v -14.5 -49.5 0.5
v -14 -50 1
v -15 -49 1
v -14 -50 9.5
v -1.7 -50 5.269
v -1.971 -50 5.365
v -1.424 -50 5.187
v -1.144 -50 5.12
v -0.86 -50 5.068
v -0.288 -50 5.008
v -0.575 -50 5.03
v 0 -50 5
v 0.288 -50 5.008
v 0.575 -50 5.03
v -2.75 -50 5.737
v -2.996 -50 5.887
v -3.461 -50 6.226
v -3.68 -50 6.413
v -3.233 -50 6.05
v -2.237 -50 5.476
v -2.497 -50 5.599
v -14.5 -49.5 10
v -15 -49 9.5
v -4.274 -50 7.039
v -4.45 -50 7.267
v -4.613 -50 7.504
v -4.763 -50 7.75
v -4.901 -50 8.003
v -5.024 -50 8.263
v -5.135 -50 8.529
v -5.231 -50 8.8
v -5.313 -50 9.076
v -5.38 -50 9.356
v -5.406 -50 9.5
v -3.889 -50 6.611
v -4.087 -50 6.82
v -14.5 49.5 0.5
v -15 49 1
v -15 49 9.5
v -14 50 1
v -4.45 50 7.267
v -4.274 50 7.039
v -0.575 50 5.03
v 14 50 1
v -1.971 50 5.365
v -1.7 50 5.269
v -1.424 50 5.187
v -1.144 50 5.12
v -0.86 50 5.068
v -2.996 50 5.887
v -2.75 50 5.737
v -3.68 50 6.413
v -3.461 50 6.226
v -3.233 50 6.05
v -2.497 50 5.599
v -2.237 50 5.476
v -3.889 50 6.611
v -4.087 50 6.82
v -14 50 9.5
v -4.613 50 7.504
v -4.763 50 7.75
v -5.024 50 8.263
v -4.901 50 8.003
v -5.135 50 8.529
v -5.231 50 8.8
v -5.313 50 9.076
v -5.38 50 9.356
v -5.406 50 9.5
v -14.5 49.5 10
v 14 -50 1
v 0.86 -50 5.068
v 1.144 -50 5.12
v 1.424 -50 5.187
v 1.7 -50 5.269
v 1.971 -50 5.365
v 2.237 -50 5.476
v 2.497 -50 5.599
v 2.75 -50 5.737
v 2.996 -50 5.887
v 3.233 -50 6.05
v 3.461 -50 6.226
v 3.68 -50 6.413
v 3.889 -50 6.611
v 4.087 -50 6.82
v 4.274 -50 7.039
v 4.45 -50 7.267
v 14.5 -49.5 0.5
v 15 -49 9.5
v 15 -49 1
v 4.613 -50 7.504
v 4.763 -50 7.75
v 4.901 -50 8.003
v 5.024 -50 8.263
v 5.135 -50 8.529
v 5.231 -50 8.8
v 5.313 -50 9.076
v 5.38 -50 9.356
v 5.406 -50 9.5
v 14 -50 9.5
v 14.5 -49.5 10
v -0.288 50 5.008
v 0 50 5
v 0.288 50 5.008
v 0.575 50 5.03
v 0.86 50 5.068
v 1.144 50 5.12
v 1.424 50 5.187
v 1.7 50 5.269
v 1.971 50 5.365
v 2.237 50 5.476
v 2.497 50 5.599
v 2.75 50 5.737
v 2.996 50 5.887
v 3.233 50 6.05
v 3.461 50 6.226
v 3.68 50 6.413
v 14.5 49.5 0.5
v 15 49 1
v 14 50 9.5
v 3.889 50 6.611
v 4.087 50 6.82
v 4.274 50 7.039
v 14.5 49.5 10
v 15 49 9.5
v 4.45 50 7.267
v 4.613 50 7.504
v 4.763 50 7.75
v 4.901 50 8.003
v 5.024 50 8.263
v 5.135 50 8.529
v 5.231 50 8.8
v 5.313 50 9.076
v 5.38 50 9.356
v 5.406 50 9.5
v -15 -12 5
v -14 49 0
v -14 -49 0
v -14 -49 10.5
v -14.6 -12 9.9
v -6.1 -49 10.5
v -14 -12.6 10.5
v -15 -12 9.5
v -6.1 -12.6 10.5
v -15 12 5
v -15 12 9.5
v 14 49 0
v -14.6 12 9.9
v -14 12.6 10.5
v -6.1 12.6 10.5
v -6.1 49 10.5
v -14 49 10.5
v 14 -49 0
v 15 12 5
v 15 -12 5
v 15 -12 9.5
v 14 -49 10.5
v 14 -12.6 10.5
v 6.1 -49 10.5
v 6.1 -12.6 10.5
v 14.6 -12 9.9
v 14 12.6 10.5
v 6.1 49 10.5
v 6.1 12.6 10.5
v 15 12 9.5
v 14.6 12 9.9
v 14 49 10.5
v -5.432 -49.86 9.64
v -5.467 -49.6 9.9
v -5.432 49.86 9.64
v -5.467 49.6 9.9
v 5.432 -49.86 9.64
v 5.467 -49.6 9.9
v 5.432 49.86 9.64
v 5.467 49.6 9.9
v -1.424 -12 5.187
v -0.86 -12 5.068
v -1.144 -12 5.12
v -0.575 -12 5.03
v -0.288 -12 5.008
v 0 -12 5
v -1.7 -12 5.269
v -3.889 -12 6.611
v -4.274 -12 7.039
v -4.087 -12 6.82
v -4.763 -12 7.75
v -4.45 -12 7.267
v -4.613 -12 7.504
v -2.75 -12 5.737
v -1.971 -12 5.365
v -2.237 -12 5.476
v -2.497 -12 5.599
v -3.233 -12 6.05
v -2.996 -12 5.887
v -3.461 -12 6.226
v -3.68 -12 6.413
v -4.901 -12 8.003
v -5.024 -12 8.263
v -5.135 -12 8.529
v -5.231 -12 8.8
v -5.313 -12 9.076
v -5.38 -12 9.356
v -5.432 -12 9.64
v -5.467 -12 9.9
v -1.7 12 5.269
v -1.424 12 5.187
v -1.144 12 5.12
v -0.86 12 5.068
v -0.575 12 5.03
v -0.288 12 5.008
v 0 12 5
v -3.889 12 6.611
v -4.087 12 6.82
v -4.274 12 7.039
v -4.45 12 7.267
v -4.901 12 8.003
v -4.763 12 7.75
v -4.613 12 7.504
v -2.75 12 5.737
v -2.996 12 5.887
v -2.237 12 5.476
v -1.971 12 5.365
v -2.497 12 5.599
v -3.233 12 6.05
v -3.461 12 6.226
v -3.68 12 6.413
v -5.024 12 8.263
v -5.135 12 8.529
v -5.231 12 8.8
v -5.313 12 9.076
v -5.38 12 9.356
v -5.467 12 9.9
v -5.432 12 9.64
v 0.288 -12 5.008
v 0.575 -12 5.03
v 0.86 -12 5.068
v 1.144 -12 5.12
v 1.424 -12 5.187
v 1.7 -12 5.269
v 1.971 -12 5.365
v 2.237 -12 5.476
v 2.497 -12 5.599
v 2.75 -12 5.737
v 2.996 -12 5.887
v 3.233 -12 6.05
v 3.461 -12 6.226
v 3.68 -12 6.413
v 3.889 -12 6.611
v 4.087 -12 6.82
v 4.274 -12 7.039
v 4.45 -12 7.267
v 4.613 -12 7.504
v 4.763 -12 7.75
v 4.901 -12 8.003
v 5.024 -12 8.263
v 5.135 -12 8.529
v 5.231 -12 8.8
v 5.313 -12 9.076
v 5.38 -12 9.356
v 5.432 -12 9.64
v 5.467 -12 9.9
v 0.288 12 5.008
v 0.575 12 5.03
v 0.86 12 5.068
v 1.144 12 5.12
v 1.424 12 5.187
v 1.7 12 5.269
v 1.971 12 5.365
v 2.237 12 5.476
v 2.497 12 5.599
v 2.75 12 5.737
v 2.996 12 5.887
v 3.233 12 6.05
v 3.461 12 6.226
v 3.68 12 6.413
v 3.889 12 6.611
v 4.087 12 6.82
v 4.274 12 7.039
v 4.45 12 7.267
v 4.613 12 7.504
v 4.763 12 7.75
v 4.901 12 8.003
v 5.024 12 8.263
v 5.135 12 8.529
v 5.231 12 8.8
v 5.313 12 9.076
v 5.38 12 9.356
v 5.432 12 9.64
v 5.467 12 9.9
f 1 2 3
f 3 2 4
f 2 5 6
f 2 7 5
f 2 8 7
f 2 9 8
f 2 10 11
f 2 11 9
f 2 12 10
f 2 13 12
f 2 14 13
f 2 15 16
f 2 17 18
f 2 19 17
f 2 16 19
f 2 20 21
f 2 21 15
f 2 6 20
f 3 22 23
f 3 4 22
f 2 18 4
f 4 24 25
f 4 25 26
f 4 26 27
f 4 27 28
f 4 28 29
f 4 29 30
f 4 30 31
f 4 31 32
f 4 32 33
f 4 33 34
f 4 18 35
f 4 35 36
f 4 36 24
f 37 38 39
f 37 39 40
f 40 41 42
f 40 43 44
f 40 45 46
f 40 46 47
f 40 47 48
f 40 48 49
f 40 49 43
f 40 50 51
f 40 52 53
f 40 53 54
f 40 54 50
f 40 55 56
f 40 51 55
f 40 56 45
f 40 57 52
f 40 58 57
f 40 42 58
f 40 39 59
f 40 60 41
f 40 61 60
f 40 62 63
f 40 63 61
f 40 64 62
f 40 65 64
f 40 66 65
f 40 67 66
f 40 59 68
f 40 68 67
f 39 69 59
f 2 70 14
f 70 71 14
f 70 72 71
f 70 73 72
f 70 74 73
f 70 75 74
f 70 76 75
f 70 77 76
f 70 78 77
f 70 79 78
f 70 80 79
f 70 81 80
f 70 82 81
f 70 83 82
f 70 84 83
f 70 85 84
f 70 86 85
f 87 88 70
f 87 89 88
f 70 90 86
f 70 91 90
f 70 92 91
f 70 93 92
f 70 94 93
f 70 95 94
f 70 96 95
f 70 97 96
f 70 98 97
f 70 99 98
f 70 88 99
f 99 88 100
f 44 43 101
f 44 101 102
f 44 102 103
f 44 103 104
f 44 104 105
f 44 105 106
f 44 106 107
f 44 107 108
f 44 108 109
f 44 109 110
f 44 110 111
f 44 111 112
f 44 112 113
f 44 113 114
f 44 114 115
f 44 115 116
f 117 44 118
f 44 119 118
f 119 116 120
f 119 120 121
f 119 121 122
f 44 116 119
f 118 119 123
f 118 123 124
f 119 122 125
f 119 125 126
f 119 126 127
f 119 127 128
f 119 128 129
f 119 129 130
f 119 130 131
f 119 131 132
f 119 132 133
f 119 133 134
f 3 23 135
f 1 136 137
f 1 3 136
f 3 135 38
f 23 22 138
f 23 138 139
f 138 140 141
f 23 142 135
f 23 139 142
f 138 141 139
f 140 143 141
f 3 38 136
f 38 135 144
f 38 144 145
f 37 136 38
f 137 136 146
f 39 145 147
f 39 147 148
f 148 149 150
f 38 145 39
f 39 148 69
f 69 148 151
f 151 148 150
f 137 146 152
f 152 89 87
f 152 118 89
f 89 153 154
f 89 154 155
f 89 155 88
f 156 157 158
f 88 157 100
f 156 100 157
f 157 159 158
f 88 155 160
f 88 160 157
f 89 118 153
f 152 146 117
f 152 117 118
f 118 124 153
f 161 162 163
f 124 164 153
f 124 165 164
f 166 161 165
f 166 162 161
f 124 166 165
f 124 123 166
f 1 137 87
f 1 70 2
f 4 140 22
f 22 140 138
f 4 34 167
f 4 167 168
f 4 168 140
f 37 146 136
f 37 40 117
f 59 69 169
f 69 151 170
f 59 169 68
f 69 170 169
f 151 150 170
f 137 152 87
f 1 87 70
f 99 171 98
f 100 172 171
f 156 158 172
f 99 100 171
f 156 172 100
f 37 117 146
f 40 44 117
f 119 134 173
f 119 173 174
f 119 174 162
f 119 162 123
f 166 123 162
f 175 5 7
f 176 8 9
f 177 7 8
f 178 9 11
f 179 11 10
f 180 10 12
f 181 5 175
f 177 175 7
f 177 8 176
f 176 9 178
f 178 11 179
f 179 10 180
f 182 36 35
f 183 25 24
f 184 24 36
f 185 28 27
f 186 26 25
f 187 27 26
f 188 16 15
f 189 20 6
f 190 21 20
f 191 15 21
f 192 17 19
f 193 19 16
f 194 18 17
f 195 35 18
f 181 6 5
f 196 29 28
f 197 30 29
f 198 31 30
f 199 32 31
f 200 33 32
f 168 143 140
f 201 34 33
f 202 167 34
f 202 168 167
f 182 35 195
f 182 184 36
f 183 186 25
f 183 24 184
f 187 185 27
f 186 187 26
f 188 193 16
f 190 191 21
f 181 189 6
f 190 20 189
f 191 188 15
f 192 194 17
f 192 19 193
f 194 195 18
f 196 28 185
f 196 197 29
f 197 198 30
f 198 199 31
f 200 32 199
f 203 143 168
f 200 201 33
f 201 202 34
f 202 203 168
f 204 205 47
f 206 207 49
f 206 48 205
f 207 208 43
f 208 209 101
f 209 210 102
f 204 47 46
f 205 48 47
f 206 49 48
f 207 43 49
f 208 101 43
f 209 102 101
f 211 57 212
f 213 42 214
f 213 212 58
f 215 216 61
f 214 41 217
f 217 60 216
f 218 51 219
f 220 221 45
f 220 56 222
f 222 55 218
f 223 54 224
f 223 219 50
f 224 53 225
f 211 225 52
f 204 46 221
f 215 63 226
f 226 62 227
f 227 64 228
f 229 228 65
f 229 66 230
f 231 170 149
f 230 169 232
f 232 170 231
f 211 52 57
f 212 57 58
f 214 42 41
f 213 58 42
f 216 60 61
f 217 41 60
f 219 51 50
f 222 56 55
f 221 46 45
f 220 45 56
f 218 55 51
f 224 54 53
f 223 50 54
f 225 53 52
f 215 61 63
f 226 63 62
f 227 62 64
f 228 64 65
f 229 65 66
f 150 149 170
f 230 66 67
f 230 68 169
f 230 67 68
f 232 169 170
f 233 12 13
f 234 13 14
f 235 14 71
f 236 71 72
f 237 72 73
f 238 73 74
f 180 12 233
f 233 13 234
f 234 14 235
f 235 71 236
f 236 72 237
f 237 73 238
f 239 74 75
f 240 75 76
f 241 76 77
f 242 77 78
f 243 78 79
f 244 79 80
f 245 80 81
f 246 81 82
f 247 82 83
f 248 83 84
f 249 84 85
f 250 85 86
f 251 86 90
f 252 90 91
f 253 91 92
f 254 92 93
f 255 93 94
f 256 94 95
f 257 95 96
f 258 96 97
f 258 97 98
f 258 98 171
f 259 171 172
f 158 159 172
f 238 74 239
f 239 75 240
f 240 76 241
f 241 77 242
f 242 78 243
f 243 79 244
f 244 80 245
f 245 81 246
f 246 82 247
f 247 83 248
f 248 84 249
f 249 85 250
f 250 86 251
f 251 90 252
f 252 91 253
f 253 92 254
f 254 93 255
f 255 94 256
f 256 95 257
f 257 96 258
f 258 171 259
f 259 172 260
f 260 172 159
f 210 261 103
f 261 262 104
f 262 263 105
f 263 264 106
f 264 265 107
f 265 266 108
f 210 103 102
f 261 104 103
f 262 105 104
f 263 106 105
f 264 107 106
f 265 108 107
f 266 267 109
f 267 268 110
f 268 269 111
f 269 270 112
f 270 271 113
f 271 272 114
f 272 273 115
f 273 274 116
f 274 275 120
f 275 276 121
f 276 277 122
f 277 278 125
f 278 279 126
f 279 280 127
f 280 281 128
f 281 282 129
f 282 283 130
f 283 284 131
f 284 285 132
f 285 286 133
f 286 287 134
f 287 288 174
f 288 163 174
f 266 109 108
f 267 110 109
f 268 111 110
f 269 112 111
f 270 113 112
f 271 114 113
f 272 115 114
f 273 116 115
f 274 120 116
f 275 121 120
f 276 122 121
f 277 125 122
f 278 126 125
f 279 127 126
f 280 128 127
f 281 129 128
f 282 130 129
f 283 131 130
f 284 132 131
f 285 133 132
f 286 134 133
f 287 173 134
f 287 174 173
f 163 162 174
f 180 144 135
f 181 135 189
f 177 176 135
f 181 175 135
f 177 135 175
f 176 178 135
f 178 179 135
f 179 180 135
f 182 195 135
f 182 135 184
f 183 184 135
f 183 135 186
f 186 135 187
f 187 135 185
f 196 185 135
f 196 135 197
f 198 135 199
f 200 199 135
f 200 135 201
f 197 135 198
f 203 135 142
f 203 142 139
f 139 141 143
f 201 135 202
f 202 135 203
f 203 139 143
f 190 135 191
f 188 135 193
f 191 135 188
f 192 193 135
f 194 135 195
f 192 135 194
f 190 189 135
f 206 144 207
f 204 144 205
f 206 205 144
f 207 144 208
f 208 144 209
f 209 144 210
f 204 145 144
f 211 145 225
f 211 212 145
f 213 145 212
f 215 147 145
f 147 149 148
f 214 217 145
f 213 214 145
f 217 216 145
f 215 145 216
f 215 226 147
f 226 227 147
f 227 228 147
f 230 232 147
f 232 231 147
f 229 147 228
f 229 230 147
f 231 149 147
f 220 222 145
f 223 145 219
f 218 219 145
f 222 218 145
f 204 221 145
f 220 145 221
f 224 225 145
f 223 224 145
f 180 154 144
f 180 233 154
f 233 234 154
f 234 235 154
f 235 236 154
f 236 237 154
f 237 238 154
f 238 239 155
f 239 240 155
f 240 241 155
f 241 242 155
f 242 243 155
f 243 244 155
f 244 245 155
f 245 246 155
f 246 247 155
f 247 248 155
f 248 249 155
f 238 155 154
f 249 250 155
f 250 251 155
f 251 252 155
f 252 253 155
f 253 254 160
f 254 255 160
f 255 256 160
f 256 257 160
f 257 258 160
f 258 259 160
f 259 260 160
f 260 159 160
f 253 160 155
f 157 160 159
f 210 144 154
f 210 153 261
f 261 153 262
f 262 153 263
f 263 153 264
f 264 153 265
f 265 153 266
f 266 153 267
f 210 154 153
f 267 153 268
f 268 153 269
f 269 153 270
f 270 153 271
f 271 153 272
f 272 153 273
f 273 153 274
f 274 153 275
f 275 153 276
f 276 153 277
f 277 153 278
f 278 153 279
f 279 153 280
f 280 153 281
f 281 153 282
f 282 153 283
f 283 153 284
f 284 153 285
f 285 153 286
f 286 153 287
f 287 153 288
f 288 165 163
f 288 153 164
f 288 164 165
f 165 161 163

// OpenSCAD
// SPDX-License-Identifier: CC-BY-4.0
// SPDX-FileCopyrightText: 2026 Todd Sayre
// ============================================================
// Pencil rest — a block with a cradle down its top, to park a
// pencil on the desk instead of letting it roll off
//
// A rectangular block with every edge chamfered and one
// cylindrical trough running the length of its top face. The
// pencil lies in the trough. Length is how much of the pencil
// is carried, width is how much desk the block stands on, and
// both are free choices.
//
// THE CRADLE IS NOT A CHOICE. Its radius is the pencil plus a
// clearance, it is cut to exactly half a cylinder, and the
// block is then made as tall as that cut plus the floor left
// under it. Height falls out of the cradle rather than the
// cradle being fitted into a height, which is what makes it
// impossible for the trough to reach the bottom: floor_meat is
// what is left under the deepest point, always, whatever
// pencil the block is cut for and however wide or long it is
// made.
//
// Cutting exactly half the cylinder is the other thing that is
// fixed by construction. The depth of the cut and the radius
// of the cut are one expression, so the trough walls arrive at
// the top face vertical. A deeper cut would undercut the
// pencil — it could not be dropped in, only threaded in from
// the end, and the roof of the undercut would be an overhang.
// Half is the deepest a cradle can be and still open upward,
// and it also leaves the pencil standing half proud, which is
// what makes it easy to pick up.
//
// The trough runs out through both ends. A blind dish would
// need end walls, and end walls in a scoop this shallow are
// the one place a support would be wanted.
//
// A notch across the middle is what makes the pencil possible
// to pick up. It runs clear out through both sides, so a
// finger and thumb come in from the sides and close on the
// pencil's whole diameter rather than reaching down a hole
// after it. Neither of its limits is a number to get right:
//
// - It cannot go deeper than the trough. Its floor is written
//   as the trough's own deepest point, not as a depth of its
//   own, so the two are one plane and the notch can never be
//   the feature that breaks the bottom.
// - It cannot reach the base. What is left under it is
//   floor_meat — the same floor the trough stands on, and,
//   with the notch open at both sides, also the whole tie
//   between the two halves of the block.
//
// That floor lands exactly level with the underside of the
// pencil, which is not a coincidence to be tuned: a round
// pencil beds at the bottom of a round trough, so its lowest
// point and the trough's are the same point whatever the
// clearance. A finger comes in beside the pencil, level with
// its underside, and closes on all of it.
//
// The notch takes nothing off the bottom face. The block
// stands on the footprint it always did and holds the desk the
// same way; what the notch costs is trough. The cradle carries
// the pencil either side of it rather than along the whole
// length, which is why notch_l is asserted against leaving
// less trough at each end than the pencil is thick.
//
// PRINT NOTES:
// - PLA or PETG, no supports needed. Print as modeled, base
//   down.
// - Nothing bridges. The cradle opens upward, so its whole
//   surface faces up, and so does the notch: flat floor,
//   walls straight up off it, open sky out both sides, and a
//   break at the mouth that flares outward as it rises, so
//   even that faces up. The only downward faces in the part
//   are the chamfers along the base, at 45 deg.
// - Every chamfer here has its run and its rise in the same
//   expression, so no value of any knob can turn one into an
//   overhang.
// - Print it solid, or near it. It is a small block and the
//   only thing it has to do is stay put, which is a question
//   of mass and of the friction of the bottom face. The floor
//   under the notch is the one place the block would break if
//   it were picked up by an end and swung, and solid infill is
//   what makes that a non-question.
// - The bottom face is the one that shows least and the top
//   face is the one a pencil rolls on, so this way up also
//   puts the plate's finish where it does no harm.
// ============================================================

// MARK: Dimensions

// Measure the pencil across its corners
pencil_d = 10; // mm

// Size the block
block_l = 100; // mm, along the pencil
block_w = 30; // mm, across the pencil

// MARK: Tuning

pencil_clearance = 0.5; // mm, on the cradle radius
floor_meat = 5; // mm, under the deepest point of the cradle
chamfer = 1; // mm, on every block edge
cradle_ease = 0.6; // mm, along both cradle rims
notch_l = 24; // mm, finger notch opening along the block
notch_ease = 0.6; // mm, along the notch walls at the top face

$fn = 120;

// MARK: Derived

// The cradle. Radius from the pencil, depth from the radius: one expression
// for both, so the cut is half a cylinder whatever the pencil measures and the
// walls always reach the top face vertical
cradle_r = pencil_d / 2 + pencil_clearance;
cradle_depth = cradle_r;

// Height of the block. It is the cut plus the floor, in that order — the
// cradle is not fitted into a height, the height is made to hold the cradle
block_h = cradle_depth + floor_meat;

// Width of the cradle's mouth in the top face, before the rims are broken. Cut
// to half a cylinder, so it is exactly the cradle's diameter
mouth_w = 2 * cradle_r;

// Flat left of the top face either side of the cradle, once the outer chamfer
// has taken from one edge and the cradle's own ease from the other
rim = (block_w - mouth_w) / 2 - chamfer - cradle_ease;

// How far the pencil stands above the top face, resting on the arc. Half of it
// less whatever the clearance lets it settle, and it is what there is to pinch
// hold of from above
pencil_proud = pencil_d / 2 - pencil_clearance;

// Where the cradle's ease meets the arc. Held on the circle rather than guessed
// at, so the chamfer runs into the trough wall instead of leaving a step in it
ease_foot = sqrt(cradle_r * cradle_r - cradle_ease * cradle_ease);

// The notch. Its floor is the trough's deepest point written out again rather
// than a depth of its own, so the two are the same plane and no arithmetic
// stands between the notch and the floor it must not break
notch_floor = block_h - cradle_depth;
notch_depth = block_h - notch_floor;

// What the notch opens in the top face, once its own ease has been taken off
// both walls
notch_mouth = notch_l + 2 * notch_ease;

// Trough left at each end of the block, outside the notch and inside the end
// chamfer. With the middle open, this is what carries the pencil
cradle_run = (block_l - notch_mouth) / 2 - chamfer;

// How much of the pencil's side a finger can close on at the notch. The floor
// of the notch is level with the underside of the pencil and the cut runs out
// through both sides, so it is all of it, from either hand
notch_grip = pencil_d;

overshoot = 1; // Run past both ends, so the trough cuts through cleanly

// MARK: Checks

echo(str("block = ", block_w, " x ", block_l, " x ", block_h, " mm"));
echo(str("cradle = ", mouth_w, " mm across, ", cradle_depth, " mm deep"));
echo(str("floor under the cradle = ", floor_meat, " mm"));
echo(str("flat rim either side = ", rim, " mm"));
echo(str("pencil stands proud of the top face by = ", pencil_proud, " mm"));
echo(str("notch = ", notch_l, " mm along the block, ", notch_mouth, " mm at the mouth, ", notch_depth, " mm deep, open out both sides"));
echo(str("notch floor is level with the trough, on the same ", floor_meat, " mm of floor"));
echo(str("trough left carrying the pencil = ", cradle_run, " mm at each end"));
echo(str("pencil exposed at the notch = ", notch_grip, " mm, its full diameter, from either side"));

assert(pencil_d > 0, "pencil_d has to be positive");
assert(cradle_r > 0, "pencil_clearance has closed the cradle — it cannot be more negative than the pencil is thick");
assert(floor_meat > 0, "floor_meat has to be positive — it is the whole floor under the cradle, and the only tie between the two halves of the block once the notch is cut");
assert(rim > 0, "the cradle has eaten the top face — widen block_w, or reduce chamfer or cradle_ease");
assert(pencil_proud > 0, "the clearance has sunk the pencil below the top face — reduce pencil_clearance");
assert(cradle_ease < cradle_r, "the cradle's ease is wider than the cradle — reduce cradle_ease");
assert(notch_l > 0, "notch_l has to be positive — it is the whole finger opening");
assert(cradle_run >= pencil_d, "the notch has left less trough at each end than the pencil is thick, which is a lip rather than a cradle — shorten notch_l, or lengthen block_l");
assert(notch_ease < notch_depth, "the notch's ease is deeper than the notch — reduce notch_ease");
assert(2 * chamfer < block_w, "the width chamfers have met — reduce chamfer or widen block_w");
assert(2 * chamfer < block_l, "the length chamfers have met — reduce chamfer or lengthen block_l");
assert(2 * chamfer < block_h, "the height chamfers have met — reduce chamfer, or add floor_meat to make the block taller");

// MARK: Geometry

// A rectangle with all four corners cut at 45 deg, centred on the origin. Each
// corner takes the same amount off both edges, so the cut is 45 deg whatever
// chamfer is set to. Used three times, once per pair of faces, and the
// intersection of the three is a block with all twelve edges broken
module chamfered_rect_2d(across, up) {
  polygon([
    [-across / 2 + chamfer, -up / 2],
    [across / 2 - chamfer, -up / 2],
    [across / 2, -up / 2 + chamfer],
    [across / 2, up / 2 - chamfer],
    [across / 2 - chamfer, up / 2],
    [-across / 2 + chamfer, up / 2],
    [-across / 2, up / 2 - chamfer],
    [-across / 2, -up / 2 + chamfer],
  ]);
}

// The cradle, in cross section: x is across the width, y is up from the base.
// The circle sits on the top face, so half of it is in the block and half is
// in the air above it — that is the half cylinder, drawn rather than
// calculated. The trapezoid breaks both rims, and its lower corners are held
// on the circle so the break runs into the arc without a step
module cradle_2d() {
  circle(r = cradle_r);

  translate([0, -cradle_ease])
    polygon([
      [-ease_foot, 0],
      [ease_foot, 0],
      [cradle_r + cradle_ease, cradle_ease],
      [-cradle_r - cradle_ease, cradle_ease],
    ]);
}

// The finger notch, in cross section: x is up from the base, y is along the
// length of the block, which is the order across_width extrudes in. A flat
// floor on the trough's own deepest point, walls straight up off it, and a
// break at the mouth whose run and its rise are one expression, so it is 45
// deg whatever notch_ease is set to. It flares outward as it rises, the way a
// countersink does, so it faces up like everything else in the cut — the notch
// contributes no downward face at all
module notch_2d() {
  polygon([
    [notch_floor, -notch_l / 2],
    [notch_floor, notch_l / 2],
    [block_h - notch_ease, notch_l / 2],
    [block_h + overshoot, notch_l / 2 + notch_ease + overshoot],
    [block_h + overshoot, -notch_l / 2 - notch_ease - overshoot],
    [block_h - notch_ease, -notch_l / 2],
  ]);
}

// Run a cross section the length of the block, clear of both ends
module along_length(extra = 0) {
  translate([0, block_l / 2 + overshoot + extra, 0])
    rotate([90, 0, 0])
      linear_extrude(block_l + 2 * (overshoot + extra))
        children();
}

// Run a cross section across the width of the block, clear of both sides
module across_width(extra = 0) {
  translate([block_w / 2 + overshoot + extra, 0, 0])
    rotate([0, -90, 0])
      linear_extrude(block_w + 2 * (overshoot + extra))
        children();
}

// The block: three chamfered rectangles, one per pair of opposite faces,
// intersected. Each one breaks the four edges its own corners stand in for —
// the plan takes the uprights, and the two elevations take the top and bottom
// edges between them
module block_body() {
  intersection() {
    linear_extrude(block_h)
      chamfered_rect_2d(block_w, block_l);

    along_length()
      translate([0, block_h / 2])
        chamfered_rect_2d(block_w, block_h);

    across_width()
      translate([block_h / 2, 0])
        chamfered_rect_2d(block_h, block_l);
  }
}

module pencil_rest() {
  difference() {
    block_body();

    along_length(1)
      translate([0, block_h])
        cradle_2d();

    // The notch, cut clear through both sides
    across_width(1)
      notch_2d();
  }
}

pencil_rest();
